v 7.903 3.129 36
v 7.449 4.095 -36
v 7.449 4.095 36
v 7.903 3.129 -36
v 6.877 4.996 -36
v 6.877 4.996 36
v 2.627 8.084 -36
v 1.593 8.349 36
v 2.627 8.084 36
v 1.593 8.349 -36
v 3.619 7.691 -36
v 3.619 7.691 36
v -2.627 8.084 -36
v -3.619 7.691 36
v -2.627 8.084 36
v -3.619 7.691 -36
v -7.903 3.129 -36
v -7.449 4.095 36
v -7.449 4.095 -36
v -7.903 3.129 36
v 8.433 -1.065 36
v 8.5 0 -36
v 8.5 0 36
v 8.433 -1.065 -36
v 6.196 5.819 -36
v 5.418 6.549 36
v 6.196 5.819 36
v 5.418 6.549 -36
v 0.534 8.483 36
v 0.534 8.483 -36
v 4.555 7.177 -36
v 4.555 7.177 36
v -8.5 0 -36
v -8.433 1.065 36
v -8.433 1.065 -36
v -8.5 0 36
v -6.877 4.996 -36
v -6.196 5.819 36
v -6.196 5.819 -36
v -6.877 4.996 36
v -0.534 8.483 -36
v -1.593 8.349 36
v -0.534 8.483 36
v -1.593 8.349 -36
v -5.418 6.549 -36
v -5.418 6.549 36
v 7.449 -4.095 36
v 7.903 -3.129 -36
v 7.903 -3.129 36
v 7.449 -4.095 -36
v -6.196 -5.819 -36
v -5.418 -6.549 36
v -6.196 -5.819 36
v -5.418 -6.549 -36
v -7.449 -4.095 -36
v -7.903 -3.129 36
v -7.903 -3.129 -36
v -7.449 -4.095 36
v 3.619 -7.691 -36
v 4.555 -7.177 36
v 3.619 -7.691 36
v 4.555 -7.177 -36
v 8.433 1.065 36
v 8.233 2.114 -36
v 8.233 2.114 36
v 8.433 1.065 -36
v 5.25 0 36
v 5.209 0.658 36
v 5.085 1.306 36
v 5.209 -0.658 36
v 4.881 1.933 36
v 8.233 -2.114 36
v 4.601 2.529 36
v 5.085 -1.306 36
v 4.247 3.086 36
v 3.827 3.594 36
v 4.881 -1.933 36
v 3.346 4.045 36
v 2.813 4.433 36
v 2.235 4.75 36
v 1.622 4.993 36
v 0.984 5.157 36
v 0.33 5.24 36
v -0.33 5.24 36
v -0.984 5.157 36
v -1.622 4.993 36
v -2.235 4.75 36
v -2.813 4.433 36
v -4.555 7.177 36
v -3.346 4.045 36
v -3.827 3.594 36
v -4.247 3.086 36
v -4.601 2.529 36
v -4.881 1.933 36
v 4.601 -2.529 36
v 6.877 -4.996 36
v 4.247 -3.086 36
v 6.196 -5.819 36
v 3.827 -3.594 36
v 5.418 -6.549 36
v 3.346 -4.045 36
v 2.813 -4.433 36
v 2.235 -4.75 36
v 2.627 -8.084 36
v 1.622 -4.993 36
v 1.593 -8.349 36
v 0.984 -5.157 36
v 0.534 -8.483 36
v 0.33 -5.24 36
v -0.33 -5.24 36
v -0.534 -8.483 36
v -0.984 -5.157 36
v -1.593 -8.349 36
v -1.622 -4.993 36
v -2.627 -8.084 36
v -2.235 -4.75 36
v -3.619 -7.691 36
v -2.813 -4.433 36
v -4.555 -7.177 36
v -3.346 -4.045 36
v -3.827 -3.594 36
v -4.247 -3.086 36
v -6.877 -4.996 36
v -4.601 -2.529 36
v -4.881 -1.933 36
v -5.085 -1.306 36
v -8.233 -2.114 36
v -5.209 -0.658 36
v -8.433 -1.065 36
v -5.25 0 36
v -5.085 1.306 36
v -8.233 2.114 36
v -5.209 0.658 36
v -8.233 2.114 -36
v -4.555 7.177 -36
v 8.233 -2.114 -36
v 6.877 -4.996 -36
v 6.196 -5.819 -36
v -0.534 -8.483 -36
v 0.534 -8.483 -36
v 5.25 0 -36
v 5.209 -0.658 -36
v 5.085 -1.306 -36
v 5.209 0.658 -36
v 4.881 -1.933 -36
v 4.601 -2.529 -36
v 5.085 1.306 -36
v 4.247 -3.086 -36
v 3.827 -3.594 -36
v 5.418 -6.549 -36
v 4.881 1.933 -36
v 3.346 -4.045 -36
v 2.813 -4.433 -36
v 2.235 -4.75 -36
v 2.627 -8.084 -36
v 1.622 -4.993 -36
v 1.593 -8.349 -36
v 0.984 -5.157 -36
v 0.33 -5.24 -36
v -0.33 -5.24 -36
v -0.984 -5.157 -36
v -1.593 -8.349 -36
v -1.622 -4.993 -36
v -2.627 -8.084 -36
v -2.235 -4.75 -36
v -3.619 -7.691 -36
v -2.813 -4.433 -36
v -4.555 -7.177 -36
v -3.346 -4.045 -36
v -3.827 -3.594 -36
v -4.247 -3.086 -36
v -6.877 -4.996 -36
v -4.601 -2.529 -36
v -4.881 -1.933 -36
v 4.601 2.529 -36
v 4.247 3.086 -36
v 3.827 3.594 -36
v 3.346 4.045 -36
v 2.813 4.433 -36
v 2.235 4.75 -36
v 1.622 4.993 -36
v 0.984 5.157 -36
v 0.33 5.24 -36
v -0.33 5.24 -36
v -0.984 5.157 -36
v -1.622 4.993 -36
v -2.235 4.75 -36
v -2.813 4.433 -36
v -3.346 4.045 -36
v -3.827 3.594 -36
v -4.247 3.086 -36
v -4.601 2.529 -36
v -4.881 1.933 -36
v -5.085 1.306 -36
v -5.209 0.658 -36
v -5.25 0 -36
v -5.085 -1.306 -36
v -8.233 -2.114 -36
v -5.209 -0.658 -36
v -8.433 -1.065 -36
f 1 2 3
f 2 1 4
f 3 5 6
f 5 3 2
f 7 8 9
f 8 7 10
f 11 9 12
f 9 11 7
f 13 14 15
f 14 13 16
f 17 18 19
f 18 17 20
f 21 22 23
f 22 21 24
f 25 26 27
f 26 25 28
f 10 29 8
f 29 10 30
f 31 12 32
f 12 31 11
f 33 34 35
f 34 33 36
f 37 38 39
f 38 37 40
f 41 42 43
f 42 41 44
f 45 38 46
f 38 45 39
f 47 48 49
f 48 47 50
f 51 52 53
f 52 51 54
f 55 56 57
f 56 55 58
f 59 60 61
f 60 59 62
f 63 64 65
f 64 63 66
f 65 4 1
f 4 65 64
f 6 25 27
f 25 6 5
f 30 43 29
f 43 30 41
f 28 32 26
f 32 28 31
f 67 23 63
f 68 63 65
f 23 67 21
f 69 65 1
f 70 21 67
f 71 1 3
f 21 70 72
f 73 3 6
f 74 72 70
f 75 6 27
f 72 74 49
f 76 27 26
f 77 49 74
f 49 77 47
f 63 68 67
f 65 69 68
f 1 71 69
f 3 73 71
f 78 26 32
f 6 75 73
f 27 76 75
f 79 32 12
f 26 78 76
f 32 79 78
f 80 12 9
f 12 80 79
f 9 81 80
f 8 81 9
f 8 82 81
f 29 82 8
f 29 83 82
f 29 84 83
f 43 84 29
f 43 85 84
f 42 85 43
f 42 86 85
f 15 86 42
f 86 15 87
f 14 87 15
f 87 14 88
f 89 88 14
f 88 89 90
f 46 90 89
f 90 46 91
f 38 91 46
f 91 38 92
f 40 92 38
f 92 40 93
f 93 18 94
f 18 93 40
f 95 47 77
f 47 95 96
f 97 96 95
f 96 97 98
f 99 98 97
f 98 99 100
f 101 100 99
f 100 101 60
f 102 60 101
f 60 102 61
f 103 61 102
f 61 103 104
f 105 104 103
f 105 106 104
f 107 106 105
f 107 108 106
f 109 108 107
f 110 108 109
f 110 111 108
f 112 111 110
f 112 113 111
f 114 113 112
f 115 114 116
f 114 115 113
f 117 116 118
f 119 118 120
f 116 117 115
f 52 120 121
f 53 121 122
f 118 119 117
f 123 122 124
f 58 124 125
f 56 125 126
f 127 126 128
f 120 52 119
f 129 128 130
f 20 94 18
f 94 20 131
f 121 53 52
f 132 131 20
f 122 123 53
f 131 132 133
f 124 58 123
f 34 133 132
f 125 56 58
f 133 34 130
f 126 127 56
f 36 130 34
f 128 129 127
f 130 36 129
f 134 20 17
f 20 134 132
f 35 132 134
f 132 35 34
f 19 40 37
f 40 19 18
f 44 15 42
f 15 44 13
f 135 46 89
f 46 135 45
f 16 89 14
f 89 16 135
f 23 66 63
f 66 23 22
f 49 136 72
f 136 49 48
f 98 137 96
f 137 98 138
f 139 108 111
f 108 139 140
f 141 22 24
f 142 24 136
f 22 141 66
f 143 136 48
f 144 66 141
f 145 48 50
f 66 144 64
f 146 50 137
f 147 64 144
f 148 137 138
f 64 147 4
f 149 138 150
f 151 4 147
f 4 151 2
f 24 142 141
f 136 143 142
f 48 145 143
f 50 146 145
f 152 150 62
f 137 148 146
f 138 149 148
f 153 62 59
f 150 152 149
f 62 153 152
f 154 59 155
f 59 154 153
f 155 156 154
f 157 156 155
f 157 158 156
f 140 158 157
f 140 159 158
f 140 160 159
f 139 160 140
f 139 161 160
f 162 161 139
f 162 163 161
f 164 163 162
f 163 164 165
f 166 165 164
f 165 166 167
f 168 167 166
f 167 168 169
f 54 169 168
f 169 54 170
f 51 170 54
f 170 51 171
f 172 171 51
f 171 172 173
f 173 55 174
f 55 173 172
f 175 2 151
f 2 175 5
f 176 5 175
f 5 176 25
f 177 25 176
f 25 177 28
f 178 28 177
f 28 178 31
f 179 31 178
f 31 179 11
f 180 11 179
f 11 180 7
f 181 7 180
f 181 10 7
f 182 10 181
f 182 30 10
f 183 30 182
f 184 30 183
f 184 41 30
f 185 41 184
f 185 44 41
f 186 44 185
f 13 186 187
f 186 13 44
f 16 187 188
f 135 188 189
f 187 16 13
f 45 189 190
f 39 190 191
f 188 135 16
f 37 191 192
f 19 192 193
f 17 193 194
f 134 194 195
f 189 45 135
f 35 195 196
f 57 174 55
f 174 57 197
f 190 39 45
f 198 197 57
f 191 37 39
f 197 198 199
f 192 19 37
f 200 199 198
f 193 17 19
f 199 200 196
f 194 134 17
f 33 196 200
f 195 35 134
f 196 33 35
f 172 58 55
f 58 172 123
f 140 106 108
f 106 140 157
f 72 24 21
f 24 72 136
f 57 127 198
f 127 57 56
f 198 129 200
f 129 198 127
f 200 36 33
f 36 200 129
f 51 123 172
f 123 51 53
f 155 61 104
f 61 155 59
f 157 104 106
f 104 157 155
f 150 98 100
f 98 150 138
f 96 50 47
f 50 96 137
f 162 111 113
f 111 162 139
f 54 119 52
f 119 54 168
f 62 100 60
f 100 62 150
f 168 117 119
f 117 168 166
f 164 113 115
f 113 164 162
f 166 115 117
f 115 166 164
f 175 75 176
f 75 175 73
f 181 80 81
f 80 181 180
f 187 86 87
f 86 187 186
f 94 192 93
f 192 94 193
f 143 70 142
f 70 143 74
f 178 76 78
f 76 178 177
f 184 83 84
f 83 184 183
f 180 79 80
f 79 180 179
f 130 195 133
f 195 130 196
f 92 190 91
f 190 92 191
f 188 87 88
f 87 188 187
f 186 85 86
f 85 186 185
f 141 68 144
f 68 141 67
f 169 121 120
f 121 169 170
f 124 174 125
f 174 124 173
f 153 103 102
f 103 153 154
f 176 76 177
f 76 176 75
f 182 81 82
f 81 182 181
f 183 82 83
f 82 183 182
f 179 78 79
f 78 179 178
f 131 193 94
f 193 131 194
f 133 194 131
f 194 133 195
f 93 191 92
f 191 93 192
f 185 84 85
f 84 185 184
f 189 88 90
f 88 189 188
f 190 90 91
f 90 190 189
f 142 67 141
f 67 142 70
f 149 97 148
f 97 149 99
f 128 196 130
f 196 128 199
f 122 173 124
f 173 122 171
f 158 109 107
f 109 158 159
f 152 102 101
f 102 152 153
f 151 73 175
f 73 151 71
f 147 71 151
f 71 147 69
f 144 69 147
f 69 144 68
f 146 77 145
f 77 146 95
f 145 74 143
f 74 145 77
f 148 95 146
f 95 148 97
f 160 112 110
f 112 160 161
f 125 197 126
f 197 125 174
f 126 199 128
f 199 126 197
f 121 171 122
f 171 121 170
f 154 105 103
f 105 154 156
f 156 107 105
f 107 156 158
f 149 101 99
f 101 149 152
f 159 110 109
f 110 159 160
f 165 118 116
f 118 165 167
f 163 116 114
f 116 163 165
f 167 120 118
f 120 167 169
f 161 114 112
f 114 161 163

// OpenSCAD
$fn = 50;


difference() {
	union() {
		translate(v = [0, 0, -36.0000000000]) {
			cylinder(h = 72, r = 8.5000000000);
		}
	}
	union() {
		translate(v = [0, 0, -100.0000000000]) {
			cylinder(h = 200, r = 5.2500000000);
		}
	}
}
